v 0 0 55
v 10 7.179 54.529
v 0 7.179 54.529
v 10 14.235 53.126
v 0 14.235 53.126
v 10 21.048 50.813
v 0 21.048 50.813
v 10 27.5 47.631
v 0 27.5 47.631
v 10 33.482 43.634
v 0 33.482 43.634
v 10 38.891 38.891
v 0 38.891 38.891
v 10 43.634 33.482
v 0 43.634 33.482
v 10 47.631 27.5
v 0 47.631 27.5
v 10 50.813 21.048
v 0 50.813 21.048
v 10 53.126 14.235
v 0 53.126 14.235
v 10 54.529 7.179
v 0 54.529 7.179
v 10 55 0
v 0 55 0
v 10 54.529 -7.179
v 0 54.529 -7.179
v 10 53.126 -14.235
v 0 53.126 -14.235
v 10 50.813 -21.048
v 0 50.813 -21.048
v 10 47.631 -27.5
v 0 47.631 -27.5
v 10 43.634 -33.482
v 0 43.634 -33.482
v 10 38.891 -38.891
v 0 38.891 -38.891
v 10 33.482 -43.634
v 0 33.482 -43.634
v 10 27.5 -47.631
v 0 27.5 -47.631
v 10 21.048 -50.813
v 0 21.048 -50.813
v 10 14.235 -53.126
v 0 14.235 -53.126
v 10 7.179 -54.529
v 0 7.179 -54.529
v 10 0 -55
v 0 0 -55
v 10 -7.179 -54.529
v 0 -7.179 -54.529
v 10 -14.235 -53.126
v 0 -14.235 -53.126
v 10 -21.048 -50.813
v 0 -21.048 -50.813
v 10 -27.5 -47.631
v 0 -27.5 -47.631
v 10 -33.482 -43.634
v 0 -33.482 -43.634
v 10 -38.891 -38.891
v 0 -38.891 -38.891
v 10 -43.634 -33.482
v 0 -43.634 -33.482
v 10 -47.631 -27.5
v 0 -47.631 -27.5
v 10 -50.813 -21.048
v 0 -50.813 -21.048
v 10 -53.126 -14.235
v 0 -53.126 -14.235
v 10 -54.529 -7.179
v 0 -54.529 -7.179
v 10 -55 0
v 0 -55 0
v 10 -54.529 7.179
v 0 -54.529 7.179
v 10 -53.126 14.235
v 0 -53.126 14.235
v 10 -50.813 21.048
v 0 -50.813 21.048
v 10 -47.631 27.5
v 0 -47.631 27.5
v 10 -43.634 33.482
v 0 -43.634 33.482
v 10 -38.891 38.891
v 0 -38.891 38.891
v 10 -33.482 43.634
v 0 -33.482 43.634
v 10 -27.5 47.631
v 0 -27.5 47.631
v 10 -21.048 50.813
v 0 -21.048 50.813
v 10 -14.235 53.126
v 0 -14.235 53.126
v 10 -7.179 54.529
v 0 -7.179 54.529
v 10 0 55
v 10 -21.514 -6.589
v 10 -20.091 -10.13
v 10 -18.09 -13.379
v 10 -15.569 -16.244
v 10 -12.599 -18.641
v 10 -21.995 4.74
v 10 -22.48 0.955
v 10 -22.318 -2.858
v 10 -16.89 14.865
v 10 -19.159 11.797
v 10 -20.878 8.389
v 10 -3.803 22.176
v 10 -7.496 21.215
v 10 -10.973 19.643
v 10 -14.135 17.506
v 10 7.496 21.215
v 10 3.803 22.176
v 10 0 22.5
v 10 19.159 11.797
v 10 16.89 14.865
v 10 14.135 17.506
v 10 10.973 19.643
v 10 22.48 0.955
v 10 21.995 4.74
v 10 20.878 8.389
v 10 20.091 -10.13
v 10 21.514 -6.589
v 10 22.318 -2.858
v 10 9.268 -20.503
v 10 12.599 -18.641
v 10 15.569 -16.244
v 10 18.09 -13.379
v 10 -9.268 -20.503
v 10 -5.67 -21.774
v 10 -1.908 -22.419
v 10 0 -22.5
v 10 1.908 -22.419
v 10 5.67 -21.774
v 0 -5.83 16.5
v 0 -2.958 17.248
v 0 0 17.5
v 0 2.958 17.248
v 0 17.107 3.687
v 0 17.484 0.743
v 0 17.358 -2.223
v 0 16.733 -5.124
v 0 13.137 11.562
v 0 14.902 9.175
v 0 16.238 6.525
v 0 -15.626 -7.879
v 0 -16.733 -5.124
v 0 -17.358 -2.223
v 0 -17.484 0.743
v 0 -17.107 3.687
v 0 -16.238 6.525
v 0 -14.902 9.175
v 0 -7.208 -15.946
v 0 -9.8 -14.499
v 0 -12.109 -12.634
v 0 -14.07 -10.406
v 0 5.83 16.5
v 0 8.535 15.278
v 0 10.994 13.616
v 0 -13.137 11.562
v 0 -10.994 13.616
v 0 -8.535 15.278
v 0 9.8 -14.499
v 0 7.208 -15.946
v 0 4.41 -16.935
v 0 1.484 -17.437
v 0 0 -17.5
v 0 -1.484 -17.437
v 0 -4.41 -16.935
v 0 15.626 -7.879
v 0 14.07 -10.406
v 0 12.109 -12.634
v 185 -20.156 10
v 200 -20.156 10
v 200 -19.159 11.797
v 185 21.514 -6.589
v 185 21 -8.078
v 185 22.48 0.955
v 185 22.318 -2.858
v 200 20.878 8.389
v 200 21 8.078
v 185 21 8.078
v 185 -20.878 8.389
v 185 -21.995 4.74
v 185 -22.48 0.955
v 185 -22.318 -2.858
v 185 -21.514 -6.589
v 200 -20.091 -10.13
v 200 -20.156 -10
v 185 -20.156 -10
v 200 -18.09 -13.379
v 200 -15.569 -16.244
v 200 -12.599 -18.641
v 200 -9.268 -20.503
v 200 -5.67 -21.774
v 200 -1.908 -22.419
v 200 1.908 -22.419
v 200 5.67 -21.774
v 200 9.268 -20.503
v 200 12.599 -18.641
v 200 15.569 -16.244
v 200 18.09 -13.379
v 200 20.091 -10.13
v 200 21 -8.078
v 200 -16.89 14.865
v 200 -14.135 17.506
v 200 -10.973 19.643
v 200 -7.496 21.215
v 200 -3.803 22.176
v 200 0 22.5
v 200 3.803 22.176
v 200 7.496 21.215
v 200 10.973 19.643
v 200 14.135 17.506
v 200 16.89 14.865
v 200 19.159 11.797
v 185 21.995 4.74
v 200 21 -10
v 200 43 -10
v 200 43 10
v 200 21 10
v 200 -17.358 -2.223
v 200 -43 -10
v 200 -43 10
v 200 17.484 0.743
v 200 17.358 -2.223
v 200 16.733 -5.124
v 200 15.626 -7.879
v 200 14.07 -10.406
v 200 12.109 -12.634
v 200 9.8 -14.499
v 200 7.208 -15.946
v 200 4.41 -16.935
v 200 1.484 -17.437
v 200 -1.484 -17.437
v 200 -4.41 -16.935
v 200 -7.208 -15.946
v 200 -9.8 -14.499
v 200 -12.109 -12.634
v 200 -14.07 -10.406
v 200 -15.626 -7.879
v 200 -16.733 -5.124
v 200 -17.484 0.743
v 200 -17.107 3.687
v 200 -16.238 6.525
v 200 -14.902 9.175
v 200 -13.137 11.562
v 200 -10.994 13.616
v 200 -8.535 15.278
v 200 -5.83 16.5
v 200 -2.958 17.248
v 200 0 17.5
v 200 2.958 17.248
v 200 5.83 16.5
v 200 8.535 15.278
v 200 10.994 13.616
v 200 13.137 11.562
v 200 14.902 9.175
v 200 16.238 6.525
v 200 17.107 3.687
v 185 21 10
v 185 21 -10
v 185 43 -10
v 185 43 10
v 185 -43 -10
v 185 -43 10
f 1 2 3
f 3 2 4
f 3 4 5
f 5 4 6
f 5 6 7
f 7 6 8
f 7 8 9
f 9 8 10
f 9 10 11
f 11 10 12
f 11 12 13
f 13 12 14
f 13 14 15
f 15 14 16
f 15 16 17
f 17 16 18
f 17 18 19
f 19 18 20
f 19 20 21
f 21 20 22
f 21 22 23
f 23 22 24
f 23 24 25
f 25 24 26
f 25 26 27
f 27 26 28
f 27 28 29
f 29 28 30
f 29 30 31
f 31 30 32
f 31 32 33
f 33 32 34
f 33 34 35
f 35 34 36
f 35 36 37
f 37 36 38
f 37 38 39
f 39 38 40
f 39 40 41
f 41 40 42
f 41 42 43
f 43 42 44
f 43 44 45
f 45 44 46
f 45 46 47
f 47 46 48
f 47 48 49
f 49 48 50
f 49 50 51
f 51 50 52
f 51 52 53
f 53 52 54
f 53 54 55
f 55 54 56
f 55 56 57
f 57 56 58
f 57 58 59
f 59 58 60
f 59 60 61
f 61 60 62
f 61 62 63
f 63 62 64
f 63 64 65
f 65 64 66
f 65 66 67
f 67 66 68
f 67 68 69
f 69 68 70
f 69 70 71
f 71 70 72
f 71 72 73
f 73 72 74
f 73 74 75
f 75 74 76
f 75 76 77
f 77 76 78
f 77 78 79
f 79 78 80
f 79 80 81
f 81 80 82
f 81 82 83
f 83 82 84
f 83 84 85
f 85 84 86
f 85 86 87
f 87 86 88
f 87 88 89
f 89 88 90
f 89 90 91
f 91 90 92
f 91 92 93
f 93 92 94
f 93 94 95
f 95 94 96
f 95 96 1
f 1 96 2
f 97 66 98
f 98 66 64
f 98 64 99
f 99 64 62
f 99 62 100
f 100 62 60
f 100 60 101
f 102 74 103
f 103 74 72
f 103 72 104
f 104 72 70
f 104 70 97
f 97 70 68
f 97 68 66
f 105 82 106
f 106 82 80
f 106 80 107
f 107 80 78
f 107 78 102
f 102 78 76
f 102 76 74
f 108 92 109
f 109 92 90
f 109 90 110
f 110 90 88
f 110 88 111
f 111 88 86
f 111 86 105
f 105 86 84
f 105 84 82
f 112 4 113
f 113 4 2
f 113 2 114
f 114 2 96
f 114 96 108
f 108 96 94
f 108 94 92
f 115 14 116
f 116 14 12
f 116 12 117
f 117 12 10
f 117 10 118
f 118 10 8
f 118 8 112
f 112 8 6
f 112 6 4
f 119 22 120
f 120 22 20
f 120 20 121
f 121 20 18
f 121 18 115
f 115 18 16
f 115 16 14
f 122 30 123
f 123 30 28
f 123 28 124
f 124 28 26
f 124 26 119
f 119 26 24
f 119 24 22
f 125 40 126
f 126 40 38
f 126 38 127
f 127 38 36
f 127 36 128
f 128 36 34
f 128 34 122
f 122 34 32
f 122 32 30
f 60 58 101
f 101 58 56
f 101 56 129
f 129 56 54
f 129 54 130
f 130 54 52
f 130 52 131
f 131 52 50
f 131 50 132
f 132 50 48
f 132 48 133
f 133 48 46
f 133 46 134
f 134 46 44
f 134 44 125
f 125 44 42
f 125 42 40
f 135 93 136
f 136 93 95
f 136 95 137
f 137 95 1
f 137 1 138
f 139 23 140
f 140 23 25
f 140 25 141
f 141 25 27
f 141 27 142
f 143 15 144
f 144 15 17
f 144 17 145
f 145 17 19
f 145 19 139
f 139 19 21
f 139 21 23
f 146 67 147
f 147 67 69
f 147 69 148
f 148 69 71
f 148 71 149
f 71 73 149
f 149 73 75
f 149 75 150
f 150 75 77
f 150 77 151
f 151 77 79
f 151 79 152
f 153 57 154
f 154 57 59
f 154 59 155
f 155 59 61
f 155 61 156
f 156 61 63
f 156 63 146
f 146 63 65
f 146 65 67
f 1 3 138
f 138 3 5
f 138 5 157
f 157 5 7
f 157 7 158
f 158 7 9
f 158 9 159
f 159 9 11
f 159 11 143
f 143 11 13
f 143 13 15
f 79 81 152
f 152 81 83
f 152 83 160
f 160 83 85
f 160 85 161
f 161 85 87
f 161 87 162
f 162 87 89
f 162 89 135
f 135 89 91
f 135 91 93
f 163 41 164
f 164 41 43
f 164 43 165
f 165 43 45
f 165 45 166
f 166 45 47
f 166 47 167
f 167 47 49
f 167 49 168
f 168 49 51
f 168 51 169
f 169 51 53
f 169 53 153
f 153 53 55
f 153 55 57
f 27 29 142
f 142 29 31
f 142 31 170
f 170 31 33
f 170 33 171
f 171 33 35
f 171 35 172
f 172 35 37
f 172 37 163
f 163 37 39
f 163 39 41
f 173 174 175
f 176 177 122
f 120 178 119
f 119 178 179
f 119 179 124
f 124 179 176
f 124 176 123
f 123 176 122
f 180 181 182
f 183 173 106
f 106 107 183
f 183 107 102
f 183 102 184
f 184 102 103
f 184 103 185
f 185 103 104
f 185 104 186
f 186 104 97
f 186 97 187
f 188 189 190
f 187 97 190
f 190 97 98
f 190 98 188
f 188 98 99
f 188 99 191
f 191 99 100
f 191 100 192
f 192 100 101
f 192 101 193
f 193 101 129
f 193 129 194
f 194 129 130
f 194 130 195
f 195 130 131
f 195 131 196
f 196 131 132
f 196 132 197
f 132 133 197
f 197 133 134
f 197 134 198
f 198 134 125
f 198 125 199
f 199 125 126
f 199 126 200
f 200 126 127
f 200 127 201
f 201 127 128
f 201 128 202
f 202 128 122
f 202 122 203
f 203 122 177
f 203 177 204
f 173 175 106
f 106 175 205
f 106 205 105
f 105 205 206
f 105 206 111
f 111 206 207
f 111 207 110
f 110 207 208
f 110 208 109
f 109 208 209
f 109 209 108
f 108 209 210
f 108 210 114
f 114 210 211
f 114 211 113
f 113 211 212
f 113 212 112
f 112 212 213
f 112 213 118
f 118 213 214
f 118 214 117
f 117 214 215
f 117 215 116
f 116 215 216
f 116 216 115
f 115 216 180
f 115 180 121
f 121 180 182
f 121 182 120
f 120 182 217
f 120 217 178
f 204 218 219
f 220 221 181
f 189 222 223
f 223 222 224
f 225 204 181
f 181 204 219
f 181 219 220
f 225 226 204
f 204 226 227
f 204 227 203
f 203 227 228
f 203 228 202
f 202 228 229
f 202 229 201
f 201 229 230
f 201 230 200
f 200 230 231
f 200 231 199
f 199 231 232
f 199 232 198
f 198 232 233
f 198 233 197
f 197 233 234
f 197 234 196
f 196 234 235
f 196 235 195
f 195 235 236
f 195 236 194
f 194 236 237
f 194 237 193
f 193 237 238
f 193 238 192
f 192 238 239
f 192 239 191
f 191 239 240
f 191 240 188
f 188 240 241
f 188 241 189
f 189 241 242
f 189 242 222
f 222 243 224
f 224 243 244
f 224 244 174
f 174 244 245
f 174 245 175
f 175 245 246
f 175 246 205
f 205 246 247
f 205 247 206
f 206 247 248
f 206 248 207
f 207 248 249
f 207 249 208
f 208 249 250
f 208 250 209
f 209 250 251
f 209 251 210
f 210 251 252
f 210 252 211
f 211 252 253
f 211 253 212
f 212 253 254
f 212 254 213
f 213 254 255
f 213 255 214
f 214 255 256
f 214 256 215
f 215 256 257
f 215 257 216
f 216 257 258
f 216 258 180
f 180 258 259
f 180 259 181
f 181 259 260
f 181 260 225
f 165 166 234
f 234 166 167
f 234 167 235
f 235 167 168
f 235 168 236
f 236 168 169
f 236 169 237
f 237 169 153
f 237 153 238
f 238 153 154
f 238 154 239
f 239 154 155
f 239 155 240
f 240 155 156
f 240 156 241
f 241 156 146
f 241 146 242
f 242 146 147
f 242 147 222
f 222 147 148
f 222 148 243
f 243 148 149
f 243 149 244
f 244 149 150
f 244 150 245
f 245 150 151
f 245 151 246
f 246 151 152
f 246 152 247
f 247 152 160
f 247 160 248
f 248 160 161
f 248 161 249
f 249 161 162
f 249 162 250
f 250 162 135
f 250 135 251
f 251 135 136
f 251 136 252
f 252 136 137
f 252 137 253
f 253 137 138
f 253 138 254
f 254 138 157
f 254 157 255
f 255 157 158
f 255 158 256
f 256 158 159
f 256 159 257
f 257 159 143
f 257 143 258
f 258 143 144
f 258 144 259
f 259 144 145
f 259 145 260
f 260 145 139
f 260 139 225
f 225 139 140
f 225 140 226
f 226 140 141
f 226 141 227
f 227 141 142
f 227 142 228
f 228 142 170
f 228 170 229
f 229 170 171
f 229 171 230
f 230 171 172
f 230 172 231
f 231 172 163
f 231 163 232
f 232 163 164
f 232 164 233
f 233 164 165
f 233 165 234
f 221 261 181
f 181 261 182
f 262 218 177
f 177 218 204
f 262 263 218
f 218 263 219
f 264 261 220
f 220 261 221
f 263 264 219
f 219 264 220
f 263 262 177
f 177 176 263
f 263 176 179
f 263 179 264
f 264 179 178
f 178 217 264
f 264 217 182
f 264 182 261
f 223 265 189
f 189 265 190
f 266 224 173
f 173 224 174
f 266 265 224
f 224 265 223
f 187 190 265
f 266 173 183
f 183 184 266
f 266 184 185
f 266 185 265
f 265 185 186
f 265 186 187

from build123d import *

# Parameters (mm, degrees)
SKETCH2_R               = 55
BOSS_EXTRUDE1_DEPTH     = 10
SKETCH3_R               = 22.5
BOSS_EXTRUDE2_DEPTH     = 190
SKETCH4_R               = 17.5
CUT_EXTRUDE1_DEPTH      = 1
CUT_EXTRUDE1_DEPTH_BACK = 201
SKETCH9_W               = 20
SKETCH9_H               = 22
BOSS_EXTRUDE3_DEPTH     = 15
SKETCH10_W              = 20
SKETCH10_H              = 23
BOSS_EXTRUDE4_DEPTH     = 15


with BuildPart() as part:
    # Sketch2 → Boss-Extrude1 (new body)
    with BuildSketch(Plane(origin=(0, 0, 0), x_dir=(0, 0, -1), z_dir=(1, 0, 0))):
        Circle(SKETCH2_R)
    extrude(amount=BOSS_EXTRUDE1_DEPTH)

    # Sketch3 → Boss-Extrude2 (add)
    with BuildSketch(Plane(origin=(10, 0, 0), x_dir=(0, 0, -1), z_dir=(1, 0, 0))):
        Circle(SKETCH3_R)
    extrude(amount=BOSS_EXTRUDE2_DEPTH)

    # Sketch4 → Cut-Extrude1 (cut, two sides)
    with BuildSketch(Plane.ZY) as cut_extrude1_sk:
        Circle(SKETCH4_R)
    extrude(amount=CUT_EXTRUDE1_DEPTH, mode=Mode.SUBTRACT)
    extrude(cut_extrude1_sk.sketch, amount=-CUT_EXTRUDE1_DEPTH_BACK, mode=Mode.SUBTRACT)

    # Sketch9 → Boss-Extrude3 (add)
    with BuildSketch(Plane(origin=(200, 0, 0), x_dir=(0, 0, -1), z_dir=(1, 0, 0))):
        with Locations((0, 32)):
            Rectangle(SKETCH9_W, SKETCH9_H)
    extrude(amount=-BOSS_EXTRUDE3_DEPTH)

    # Sketch10 → Boss-Extrude4 (add)
    with BuildSketch(Plane(origin=(200, 0, 0), x_dir=(0, 0, -1), z_dir=(1, 0, 0))):
        with Locations((0, -31.5)):
            Rectangle(SKETCH10_W, SKETCH10_H)
    extrude(amount=-BOSS_EXTRUDE4_DEPTH)


solid = part.part
